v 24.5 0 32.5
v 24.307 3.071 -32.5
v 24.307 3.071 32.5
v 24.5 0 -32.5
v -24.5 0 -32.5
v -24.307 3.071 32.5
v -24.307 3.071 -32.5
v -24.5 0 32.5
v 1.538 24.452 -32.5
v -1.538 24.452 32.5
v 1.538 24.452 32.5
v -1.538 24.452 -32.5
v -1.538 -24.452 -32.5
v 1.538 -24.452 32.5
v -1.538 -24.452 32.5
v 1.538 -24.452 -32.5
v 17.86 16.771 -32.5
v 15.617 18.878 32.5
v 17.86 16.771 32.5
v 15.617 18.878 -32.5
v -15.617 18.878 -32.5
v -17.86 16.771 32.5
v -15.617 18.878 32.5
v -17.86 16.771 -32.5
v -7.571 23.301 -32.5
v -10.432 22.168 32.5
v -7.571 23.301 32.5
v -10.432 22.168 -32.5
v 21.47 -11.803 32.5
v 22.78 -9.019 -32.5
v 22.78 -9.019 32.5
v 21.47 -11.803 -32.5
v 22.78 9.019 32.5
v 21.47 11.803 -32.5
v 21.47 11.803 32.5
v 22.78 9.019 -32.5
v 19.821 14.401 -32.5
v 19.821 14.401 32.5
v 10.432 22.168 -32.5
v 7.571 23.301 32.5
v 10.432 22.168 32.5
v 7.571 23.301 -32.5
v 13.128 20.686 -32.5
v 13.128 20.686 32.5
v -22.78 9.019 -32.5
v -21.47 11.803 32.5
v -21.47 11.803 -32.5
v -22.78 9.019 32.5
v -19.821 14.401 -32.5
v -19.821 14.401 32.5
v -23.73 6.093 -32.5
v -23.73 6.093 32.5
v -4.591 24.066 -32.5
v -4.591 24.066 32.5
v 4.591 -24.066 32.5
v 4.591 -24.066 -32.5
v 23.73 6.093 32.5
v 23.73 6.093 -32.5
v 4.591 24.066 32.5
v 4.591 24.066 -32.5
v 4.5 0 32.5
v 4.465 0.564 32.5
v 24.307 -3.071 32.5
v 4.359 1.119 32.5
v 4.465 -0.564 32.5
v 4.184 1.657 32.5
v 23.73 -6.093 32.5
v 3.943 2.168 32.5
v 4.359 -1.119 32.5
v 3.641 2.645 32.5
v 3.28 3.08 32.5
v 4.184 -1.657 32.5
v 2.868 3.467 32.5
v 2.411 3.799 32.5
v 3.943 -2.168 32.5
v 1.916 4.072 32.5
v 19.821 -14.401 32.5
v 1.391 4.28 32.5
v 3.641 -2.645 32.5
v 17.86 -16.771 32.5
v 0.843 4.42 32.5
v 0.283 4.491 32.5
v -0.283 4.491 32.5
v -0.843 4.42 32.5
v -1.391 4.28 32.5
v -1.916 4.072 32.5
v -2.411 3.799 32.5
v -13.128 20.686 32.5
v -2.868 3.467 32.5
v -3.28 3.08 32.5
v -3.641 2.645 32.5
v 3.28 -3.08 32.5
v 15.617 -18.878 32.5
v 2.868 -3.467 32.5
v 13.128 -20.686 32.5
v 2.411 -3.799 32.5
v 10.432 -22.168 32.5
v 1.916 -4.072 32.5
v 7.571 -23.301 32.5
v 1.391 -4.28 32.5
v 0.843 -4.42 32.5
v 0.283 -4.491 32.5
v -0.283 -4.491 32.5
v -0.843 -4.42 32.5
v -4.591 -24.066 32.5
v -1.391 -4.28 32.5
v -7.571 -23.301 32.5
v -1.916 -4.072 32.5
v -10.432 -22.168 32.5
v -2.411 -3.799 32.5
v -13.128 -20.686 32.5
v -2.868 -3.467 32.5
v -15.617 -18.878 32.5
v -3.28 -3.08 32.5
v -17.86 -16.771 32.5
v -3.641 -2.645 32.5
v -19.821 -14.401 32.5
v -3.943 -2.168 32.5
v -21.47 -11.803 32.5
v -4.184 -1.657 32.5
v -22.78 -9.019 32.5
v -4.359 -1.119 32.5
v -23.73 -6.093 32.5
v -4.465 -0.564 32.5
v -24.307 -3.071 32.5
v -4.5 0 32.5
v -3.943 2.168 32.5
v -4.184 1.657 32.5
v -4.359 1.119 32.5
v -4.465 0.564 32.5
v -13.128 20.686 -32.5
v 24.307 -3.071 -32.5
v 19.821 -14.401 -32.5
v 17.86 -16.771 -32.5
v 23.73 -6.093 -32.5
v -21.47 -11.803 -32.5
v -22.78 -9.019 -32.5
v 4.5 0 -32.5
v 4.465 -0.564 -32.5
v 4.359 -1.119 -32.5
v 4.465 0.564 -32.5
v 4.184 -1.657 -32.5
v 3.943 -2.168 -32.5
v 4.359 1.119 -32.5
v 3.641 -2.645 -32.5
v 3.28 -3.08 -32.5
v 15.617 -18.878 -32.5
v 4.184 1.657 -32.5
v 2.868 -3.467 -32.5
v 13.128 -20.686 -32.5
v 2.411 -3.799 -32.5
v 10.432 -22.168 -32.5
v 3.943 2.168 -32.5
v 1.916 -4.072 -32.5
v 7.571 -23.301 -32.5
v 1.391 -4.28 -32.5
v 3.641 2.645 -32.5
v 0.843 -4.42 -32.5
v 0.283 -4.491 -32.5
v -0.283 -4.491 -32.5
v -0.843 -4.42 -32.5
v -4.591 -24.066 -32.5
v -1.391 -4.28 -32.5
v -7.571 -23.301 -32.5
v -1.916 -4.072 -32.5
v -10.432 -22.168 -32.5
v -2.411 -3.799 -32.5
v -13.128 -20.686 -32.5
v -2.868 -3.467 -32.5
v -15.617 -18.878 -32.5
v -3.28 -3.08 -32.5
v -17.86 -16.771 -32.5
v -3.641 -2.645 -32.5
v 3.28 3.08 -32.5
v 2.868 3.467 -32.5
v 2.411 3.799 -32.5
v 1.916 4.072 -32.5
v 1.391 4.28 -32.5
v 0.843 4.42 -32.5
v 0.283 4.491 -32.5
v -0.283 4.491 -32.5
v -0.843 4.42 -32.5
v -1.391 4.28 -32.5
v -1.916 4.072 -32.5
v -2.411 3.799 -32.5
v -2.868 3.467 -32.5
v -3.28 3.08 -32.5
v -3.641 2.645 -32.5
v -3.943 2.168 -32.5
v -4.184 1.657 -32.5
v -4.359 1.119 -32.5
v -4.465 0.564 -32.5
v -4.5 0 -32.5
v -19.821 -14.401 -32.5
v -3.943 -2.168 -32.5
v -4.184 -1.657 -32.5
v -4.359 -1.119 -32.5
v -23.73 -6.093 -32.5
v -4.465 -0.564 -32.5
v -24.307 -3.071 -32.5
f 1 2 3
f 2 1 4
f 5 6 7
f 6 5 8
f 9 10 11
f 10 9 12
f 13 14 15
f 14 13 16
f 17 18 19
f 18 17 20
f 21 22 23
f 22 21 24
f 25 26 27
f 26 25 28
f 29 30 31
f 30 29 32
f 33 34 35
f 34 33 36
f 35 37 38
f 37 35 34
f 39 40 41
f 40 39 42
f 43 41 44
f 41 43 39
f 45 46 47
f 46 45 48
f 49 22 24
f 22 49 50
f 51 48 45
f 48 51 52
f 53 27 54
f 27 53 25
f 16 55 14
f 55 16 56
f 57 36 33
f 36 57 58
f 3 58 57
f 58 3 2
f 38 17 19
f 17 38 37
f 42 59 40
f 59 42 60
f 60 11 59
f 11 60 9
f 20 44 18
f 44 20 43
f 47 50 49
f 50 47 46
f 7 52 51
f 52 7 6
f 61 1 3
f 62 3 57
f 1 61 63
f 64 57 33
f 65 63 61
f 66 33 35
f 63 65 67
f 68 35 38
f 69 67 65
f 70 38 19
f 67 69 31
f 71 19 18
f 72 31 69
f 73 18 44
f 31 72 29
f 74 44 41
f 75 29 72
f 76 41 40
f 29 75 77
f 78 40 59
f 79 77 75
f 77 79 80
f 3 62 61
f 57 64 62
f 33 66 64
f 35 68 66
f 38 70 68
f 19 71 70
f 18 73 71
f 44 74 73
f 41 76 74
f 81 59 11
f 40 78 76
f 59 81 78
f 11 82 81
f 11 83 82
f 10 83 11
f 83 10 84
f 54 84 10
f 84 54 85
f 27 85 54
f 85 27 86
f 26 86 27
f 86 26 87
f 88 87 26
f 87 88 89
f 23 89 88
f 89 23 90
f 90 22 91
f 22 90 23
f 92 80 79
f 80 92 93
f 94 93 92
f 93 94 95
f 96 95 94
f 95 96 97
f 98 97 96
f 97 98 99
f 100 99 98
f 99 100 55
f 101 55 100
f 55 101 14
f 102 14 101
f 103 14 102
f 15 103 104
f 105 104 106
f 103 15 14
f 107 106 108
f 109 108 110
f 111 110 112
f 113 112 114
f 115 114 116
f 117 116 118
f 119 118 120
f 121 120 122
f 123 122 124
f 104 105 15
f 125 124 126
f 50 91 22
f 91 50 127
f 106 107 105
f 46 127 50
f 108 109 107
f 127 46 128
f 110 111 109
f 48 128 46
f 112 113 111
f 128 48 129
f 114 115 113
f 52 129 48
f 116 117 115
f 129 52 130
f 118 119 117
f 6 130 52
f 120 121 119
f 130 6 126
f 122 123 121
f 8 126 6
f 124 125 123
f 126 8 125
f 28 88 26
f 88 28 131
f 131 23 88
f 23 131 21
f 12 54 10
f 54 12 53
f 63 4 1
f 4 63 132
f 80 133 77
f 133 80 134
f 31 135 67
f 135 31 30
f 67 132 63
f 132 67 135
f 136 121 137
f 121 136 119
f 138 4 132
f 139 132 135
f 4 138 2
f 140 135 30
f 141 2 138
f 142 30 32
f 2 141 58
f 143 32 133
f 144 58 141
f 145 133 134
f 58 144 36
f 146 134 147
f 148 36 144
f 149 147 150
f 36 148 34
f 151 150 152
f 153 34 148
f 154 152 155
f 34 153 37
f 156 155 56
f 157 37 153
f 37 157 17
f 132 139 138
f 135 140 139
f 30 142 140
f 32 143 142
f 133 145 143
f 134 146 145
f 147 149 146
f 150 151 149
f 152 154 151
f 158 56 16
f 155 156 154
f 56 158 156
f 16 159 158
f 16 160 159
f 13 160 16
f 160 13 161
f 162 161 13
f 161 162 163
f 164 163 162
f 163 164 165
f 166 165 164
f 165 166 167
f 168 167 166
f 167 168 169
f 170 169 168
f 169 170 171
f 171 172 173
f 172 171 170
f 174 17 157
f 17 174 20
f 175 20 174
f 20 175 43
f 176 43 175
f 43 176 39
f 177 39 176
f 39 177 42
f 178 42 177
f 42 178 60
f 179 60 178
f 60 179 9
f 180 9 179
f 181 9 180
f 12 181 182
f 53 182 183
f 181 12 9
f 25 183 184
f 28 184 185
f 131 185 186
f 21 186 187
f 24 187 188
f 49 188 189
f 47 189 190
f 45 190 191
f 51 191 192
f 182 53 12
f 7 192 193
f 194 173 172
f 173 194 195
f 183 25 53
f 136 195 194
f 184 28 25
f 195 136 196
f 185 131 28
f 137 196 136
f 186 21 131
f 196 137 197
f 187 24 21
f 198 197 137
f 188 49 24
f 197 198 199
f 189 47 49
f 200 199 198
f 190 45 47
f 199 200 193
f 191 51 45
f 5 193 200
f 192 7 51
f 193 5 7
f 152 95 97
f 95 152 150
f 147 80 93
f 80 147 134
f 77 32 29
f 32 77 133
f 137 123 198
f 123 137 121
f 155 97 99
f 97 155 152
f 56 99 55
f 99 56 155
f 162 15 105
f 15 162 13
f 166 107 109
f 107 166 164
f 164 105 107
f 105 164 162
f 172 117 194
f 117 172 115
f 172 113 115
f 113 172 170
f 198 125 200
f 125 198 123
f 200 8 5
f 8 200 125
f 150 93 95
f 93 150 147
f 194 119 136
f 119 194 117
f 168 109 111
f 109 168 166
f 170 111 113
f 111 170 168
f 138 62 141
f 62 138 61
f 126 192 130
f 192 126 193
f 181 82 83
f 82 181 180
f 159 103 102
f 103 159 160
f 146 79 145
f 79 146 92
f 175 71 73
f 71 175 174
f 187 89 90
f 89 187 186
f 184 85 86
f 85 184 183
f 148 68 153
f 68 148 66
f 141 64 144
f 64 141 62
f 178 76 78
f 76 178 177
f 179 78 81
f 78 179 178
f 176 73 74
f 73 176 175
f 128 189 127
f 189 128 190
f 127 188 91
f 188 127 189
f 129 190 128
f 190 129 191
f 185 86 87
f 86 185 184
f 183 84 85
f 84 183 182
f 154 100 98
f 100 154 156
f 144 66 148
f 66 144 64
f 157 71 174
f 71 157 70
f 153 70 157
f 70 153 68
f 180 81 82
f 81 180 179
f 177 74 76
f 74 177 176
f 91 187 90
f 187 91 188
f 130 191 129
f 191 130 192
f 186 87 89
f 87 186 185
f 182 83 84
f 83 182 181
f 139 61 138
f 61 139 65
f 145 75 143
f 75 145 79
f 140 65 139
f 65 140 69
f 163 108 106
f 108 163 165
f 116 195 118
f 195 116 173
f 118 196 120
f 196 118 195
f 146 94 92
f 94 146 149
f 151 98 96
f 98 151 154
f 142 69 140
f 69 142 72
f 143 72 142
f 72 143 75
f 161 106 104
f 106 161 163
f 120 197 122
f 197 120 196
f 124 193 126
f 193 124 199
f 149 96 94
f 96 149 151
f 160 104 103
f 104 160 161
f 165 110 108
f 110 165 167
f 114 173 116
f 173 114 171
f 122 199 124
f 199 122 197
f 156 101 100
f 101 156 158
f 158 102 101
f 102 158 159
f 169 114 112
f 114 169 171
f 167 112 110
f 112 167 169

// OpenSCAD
$fn = 50;


difference() {
	union() {
		translate(v = [0, 0, -32.5000000000]) {
			cylinder(h = 65, r = 24.5000000000);
		}
	}
	union() {
		translate(v = [0, 0, -100.0000000000]) {
			cylinder(h = 200, r = 4.5000000000);
		}
	}
}
